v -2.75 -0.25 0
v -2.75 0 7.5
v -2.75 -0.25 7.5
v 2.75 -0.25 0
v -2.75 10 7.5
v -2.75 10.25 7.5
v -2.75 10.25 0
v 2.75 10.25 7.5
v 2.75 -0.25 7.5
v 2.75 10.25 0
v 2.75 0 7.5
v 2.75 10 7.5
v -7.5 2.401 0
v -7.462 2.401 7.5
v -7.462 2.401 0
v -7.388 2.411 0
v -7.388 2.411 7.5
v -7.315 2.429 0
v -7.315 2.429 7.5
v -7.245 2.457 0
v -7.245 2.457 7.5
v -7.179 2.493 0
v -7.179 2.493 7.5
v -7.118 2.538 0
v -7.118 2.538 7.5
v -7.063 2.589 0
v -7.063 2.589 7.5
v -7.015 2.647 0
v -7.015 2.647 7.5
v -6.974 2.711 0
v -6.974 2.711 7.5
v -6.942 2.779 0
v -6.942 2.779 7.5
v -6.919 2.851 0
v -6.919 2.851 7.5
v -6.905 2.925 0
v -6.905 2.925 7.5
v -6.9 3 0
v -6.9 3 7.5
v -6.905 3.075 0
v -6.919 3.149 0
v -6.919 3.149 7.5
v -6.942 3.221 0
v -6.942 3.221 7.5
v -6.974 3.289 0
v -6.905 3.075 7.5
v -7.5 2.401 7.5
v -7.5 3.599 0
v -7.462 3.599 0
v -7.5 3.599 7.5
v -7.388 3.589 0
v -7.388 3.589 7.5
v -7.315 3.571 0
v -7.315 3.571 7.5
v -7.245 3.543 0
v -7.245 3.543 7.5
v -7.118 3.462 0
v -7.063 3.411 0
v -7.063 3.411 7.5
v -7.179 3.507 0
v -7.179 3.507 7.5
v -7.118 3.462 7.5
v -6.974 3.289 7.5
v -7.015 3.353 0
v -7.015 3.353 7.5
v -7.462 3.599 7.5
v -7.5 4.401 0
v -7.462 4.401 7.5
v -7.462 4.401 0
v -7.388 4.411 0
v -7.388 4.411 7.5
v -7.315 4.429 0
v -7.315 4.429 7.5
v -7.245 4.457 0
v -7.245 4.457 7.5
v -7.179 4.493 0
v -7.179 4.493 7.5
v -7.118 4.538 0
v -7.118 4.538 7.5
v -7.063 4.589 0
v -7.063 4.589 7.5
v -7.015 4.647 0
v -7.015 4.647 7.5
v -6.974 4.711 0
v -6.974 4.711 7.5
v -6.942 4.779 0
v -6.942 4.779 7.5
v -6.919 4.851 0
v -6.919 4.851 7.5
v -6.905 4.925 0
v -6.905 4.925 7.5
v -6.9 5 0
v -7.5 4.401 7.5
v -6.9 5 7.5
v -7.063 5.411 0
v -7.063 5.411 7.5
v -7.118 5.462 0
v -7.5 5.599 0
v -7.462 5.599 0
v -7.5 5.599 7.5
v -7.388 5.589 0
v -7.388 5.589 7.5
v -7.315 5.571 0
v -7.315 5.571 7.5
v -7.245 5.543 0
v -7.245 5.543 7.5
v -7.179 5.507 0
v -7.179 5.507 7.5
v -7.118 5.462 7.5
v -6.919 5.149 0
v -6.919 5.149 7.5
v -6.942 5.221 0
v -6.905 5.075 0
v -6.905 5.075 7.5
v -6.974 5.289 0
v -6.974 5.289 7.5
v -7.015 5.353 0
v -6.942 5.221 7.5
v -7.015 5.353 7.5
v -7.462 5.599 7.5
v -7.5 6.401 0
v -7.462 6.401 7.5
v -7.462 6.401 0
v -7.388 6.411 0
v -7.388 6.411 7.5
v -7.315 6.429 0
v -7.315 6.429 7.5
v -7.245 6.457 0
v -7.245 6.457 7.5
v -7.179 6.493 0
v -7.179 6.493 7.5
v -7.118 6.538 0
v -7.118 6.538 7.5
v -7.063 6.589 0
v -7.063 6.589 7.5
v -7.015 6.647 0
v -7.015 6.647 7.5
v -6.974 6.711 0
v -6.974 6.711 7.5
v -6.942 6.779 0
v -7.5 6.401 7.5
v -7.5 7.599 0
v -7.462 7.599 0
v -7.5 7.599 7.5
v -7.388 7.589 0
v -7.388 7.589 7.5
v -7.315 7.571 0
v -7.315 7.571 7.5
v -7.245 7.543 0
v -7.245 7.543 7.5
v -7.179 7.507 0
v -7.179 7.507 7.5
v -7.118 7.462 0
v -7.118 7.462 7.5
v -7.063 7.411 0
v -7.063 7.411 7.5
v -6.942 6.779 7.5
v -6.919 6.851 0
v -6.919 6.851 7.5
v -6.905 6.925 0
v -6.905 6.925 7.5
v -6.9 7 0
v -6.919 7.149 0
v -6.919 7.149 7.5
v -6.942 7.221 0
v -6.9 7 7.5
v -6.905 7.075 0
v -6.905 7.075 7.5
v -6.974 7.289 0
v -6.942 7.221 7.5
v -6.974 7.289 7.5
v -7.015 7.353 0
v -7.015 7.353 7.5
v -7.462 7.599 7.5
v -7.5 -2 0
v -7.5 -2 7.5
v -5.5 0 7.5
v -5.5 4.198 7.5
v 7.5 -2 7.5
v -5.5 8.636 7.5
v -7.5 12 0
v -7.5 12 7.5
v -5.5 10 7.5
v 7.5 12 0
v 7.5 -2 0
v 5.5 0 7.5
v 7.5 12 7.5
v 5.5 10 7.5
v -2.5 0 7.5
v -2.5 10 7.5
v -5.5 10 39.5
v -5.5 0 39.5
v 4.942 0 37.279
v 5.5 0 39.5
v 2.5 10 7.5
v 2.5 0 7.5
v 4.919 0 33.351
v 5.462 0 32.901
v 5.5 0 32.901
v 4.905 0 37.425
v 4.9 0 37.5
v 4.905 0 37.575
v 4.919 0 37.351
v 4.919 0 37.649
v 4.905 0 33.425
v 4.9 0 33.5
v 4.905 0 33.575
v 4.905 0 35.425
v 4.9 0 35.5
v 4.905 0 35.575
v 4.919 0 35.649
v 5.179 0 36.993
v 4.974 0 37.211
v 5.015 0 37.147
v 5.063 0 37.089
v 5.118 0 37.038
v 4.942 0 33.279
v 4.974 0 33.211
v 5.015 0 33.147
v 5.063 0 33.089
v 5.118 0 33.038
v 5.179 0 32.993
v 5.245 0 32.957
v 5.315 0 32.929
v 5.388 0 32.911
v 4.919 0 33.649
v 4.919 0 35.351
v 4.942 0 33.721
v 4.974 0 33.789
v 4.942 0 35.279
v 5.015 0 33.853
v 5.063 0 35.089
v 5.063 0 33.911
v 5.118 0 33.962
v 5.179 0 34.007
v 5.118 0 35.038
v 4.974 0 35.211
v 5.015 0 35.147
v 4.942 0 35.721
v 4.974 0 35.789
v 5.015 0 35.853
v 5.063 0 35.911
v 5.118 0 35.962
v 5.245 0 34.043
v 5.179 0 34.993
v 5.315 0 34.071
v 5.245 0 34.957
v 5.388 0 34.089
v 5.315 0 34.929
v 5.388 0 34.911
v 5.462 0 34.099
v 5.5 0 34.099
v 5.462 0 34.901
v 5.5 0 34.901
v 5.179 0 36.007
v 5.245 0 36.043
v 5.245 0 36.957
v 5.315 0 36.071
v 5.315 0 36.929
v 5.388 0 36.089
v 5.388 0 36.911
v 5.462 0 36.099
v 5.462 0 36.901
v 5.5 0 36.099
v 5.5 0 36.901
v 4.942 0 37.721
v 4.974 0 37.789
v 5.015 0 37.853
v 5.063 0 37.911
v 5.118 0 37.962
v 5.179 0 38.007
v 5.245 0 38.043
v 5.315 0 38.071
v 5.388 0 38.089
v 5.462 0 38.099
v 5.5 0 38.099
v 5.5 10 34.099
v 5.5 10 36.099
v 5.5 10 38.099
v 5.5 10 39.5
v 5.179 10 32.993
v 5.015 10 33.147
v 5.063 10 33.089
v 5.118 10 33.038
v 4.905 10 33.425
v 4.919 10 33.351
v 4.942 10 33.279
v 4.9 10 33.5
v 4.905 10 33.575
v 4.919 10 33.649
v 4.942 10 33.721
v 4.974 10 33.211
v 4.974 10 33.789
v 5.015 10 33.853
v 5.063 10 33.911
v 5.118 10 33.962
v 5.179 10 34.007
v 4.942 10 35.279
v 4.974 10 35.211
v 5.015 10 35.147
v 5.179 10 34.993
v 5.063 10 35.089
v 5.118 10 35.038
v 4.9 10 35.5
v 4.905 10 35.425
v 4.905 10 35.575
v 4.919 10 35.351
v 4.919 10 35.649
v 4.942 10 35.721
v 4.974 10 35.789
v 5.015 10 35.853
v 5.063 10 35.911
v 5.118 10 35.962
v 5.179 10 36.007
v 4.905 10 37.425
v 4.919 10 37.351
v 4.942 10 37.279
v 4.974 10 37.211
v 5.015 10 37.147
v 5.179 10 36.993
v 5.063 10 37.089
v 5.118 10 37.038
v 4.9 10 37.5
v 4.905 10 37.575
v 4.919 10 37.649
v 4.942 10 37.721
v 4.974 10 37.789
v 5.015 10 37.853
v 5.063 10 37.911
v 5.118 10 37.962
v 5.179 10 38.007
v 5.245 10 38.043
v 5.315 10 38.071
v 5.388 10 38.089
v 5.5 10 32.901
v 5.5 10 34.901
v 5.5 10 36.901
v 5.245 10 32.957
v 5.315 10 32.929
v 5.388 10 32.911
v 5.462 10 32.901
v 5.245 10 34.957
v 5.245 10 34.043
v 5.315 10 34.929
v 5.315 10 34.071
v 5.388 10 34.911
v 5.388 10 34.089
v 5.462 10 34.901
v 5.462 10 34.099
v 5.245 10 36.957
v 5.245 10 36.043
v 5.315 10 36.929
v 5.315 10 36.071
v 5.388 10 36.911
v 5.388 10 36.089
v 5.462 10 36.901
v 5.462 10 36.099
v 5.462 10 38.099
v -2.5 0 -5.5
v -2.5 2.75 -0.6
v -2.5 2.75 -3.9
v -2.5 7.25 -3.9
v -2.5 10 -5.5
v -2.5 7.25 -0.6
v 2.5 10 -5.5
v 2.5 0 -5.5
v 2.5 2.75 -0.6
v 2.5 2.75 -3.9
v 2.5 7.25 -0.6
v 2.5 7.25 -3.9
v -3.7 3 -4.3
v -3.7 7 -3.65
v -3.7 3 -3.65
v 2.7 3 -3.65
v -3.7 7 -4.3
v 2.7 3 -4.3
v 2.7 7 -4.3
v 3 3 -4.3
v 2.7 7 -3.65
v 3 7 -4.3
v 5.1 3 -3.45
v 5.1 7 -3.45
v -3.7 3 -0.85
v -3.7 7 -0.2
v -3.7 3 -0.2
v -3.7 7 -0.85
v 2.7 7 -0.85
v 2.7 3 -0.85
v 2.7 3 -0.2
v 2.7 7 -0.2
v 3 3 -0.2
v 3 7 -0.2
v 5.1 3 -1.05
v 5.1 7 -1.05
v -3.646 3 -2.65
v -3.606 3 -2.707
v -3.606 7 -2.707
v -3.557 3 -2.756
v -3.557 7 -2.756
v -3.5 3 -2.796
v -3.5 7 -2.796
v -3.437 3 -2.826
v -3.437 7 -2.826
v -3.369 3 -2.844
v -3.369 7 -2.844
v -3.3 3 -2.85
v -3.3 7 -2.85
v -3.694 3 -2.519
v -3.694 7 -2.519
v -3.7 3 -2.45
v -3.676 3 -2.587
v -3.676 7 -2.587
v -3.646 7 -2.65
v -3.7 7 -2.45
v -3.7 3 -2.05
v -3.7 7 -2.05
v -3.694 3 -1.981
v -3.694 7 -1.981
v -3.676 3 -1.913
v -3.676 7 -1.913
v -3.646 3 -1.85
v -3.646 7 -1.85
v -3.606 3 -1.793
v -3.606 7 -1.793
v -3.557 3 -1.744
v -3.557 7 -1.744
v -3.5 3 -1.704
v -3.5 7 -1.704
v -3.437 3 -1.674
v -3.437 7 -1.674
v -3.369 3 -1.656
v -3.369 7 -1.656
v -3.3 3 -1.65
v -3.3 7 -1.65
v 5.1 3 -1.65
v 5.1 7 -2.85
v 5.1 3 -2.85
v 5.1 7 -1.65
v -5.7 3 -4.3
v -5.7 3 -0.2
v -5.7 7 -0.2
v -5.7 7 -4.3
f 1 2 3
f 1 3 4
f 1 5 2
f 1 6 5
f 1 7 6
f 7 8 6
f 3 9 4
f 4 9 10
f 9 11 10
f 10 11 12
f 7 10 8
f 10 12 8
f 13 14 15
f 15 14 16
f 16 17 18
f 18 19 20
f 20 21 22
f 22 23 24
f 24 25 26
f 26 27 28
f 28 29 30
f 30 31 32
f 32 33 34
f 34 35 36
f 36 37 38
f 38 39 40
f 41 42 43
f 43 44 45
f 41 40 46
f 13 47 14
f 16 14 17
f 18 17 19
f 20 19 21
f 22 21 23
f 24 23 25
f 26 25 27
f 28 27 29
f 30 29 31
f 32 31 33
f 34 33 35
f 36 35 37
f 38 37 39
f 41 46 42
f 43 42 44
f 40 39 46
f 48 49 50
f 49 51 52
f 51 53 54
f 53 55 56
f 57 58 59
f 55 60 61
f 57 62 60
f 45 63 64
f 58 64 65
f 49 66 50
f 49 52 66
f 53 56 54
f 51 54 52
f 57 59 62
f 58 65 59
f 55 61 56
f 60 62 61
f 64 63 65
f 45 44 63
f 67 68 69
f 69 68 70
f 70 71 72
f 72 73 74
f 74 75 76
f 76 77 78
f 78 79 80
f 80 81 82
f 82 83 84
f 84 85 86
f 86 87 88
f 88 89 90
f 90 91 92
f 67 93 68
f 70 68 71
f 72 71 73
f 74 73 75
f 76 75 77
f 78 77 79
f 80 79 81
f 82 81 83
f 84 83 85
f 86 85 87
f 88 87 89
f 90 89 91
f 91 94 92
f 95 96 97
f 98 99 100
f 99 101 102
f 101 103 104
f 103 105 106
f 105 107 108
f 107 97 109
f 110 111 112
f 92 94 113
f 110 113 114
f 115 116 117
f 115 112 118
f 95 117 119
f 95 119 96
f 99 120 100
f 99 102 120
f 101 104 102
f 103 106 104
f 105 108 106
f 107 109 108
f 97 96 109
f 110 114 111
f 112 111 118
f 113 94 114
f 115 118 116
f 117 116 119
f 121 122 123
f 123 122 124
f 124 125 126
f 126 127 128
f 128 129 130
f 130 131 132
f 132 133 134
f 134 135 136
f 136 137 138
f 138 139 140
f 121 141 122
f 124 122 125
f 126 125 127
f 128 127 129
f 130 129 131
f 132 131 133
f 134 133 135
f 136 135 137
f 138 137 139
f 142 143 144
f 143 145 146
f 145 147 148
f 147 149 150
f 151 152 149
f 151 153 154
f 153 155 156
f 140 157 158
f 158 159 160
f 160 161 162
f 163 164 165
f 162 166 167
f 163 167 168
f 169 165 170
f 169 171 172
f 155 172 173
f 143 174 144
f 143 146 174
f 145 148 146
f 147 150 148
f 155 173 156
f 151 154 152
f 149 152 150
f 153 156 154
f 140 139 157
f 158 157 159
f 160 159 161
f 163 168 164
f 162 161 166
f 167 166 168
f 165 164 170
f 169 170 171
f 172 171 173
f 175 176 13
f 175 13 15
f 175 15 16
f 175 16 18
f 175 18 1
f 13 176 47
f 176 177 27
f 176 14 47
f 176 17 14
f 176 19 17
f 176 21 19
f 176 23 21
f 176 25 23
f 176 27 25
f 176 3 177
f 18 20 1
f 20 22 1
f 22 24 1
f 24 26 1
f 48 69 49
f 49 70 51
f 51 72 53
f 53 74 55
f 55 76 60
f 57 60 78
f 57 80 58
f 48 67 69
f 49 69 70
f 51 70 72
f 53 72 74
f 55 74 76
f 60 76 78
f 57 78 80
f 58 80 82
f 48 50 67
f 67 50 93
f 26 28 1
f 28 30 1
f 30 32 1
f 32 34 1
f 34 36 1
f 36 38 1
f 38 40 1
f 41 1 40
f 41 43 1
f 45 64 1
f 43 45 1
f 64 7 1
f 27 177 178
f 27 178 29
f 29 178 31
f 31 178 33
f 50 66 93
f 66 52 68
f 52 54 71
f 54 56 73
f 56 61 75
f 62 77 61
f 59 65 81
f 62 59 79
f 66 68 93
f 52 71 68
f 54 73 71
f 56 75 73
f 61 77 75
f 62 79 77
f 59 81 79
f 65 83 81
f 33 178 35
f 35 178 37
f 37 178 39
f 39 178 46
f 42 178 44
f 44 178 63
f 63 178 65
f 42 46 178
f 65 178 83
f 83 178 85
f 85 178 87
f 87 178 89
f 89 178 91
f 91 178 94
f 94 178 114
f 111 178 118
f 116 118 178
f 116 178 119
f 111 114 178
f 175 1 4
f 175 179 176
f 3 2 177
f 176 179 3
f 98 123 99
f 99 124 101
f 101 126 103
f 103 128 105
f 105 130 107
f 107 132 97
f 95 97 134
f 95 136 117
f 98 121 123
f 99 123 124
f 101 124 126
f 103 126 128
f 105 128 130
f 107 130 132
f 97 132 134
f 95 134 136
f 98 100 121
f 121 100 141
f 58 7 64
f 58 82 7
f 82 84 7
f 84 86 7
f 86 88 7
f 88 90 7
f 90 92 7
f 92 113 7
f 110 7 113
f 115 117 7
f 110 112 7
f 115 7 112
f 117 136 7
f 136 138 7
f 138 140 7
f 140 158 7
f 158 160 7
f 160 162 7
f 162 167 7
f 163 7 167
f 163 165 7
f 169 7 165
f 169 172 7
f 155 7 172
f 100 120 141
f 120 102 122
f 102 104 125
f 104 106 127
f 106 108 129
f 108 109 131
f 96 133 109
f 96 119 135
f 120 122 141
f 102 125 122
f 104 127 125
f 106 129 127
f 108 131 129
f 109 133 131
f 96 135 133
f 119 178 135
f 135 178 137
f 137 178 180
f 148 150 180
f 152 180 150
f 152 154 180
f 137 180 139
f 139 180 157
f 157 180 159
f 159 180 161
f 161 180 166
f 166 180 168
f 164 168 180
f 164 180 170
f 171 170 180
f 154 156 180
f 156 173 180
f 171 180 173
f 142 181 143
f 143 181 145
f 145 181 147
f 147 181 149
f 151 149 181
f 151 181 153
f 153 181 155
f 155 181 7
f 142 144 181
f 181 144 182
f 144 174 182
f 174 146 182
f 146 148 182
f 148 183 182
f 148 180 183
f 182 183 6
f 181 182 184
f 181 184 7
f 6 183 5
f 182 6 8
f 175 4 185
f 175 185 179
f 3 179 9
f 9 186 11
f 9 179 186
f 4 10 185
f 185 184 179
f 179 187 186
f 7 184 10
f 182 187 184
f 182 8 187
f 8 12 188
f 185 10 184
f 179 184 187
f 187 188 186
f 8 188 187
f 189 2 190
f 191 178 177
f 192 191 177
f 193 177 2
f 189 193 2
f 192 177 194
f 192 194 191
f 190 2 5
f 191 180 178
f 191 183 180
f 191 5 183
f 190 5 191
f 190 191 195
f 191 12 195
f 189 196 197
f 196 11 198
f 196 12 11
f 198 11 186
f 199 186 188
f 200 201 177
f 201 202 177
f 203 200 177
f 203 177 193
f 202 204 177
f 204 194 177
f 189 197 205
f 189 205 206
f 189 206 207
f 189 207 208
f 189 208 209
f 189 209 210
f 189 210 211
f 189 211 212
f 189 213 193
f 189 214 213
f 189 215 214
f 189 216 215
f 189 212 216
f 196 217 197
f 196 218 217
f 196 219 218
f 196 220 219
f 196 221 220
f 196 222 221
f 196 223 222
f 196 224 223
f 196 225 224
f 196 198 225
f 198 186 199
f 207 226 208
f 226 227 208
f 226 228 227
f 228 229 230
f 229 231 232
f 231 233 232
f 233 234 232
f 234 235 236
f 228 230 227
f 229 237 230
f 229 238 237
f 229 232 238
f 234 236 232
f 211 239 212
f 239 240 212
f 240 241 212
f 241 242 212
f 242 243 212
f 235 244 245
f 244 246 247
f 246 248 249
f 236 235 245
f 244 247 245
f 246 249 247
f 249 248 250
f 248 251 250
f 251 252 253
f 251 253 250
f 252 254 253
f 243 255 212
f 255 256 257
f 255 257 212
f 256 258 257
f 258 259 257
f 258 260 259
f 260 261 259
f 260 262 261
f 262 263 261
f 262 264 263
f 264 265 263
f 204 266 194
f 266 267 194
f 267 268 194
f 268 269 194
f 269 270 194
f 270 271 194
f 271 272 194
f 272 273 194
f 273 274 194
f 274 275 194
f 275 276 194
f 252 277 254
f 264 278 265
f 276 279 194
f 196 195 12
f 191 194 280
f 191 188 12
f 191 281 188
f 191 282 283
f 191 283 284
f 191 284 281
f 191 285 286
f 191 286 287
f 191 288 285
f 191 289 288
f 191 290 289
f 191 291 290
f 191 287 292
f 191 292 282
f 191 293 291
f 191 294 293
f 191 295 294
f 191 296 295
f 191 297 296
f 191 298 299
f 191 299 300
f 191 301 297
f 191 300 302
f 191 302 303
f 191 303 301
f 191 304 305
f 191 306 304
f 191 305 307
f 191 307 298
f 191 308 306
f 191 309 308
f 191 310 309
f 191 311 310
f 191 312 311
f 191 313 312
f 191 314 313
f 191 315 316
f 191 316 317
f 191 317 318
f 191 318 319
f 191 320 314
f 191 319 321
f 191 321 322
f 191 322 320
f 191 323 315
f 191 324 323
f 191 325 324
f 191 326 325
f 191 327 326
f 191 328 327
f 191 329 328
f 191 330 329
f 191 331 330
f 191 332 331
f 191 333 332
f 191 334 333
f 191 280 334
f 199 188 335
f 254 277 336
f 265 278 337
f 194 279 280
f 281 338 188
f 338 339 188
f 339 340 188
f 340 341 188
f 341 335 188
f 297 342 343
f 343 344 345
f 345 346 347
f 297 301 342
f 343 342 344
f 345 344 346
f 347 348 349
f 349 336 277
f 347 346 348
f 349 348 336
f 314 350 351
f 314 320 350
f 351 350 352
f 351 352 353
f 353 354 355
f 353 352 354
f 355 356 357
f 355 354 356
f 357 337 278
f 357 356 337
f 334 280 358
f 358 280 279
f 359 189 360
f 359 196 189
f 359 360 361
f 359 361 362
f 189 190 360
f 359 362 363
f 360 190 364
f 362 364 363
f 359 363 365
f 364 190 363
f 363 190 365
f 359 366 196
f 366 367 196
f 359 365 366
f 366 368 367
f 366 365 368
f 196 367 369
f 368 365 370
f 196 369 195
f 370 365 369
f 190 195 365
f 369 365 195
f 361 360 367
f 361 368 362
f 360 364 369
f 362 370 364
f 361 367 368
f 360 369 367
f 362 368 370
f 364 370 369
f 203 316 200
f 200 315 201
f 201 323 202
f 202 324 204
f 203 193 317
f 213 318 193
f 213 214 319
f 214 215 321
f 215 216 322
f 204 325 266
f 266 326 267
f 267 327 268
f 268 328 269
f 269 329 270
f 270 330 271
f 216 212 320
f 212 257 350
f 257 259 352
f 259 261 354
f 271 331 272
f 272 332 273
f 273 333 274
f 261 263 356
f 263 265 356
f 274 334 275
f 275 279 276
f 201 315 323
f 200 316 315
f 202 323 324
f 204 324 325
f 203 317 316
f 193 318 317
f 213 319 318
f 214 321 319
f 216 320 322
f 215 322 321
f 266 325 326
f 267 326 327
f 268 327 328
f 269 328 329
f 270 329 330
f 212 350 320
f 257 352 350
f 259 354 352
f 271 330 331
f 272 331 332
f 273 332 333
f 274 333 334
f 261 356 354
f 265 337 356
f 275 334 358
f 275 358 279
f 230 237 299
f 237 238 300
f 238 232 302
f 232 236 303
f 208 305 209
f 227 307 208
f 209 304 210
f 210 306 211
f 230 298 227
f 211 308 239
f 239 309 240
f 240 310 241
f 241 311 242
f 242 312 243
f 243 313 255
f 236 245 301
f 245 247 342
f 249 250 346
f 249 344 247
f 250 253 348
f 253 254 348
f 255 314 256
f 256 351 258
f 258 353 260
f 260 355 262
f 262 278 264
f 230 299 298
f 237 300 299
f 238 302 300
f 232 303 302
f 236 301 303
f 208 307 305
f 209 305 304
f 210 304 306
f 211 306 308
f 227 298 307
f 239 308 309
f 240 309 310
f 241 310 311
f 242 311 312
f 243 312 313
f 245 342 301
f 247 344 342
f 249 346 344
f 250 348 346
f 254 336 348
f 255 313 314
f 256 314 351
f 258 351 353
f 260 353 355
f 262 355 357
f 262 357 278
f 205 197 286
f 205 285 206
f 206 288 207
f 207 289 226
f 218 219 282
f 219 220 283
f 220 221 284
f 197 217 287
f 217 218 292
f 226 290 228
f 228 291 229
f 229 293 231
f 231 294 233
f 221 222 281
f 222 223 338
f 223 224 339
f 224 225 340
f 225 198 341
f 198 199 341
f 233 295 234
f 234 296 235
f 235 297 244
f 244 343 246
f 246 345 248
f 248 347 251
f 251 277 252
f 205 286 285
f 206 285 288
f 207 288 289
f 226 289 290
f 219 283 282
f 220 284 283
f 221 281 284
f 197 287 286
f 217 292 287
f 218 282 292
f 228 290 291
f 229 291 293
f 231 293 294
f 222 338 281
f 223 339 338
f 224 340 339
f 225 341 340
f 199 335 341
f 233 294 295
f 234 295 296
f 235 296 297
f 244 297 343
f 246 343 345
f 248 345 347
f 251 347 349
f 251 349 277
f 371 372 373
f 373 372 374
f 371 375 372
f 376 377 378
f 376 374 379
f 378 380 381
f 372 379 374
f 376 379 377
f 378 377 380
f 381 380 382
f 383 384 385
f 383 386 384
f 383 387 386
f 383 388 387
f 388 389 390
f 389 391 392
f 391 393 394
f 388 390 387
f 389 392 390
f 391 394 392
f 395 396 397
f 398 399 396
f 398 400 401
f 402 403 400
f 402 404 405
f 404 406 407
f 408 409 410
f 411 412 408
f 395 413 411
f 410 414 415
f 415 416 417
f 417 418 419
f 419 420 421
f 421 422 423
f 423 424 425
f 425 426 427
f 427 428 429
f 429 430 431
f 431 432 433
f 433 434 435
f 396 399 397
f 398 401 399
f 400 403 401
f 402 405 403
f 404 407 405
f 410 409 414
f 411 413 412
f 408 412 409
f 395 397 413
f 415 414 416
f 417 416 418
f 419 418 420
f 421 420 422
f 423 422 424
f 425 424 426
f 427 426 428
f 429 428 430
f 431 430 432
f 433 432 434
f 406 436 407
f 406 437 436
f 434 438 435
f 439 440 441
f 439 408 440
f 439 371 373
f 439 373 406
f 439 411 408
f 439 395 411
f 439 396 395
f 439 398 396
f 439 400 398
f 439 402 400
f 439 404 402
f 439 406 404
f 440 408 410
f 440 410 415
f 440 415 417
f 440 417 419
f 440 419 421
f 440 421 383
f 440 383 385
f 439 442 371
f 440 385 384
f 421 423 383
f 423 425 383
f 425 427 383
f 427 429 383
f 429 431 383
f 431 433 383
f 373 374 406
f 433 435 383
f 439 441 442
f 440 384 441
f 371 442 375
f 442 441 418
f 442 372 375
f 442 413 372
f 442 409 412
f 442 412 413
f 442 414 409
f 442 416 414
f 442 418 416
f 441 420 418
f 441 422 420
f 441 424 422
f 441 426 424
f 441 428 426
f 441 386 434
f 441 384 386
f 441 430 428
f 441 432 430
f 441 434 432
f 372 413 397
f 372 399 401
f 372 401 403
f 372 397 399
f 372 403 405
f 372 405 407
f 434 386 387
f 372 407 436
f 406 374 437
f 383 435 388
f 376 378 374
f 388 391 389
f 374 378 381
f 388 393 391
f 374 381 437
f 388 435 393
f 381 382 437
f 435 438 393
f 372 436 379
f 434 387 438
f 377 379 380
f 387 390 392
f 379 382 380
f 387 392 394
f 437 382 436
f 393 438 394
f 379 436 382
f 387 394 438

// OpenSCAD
$fn = 50;

difference() {
	union() {
		translate(v = [0, 0, 0]) {
			rotate(a = [0, 0, 0]) {
				difference() {
					union() {
						translate(v = [-7.5, -2.0, 0]) {
							cube(size = [15.0, 14.0, 7.5]);
						}
					}
					union() {
						translate(v = [-2.75, -0.25, -0.1]) {
							cube(size = [5.5, 10.5, 7.7]);
						}
						translate(v = [-7.5, 3, -0.1]) {
							cylinder(h = 7.7, r = 0.6);
						}
						translate(v = [-7.5, 5, -0.1]) {
							cylinder(h = 7.7, r = 0.6);
						}
						translate(v = [-7.5, 7, -0.1]) {
							cylinder(h = 7.7, r = 0.6);
						}
					}
				}
			}
		}
		translate(v = [0, 0, 7.5]) {
			rotate(a = [0, 0, 0]) {
				difference() {
					union() {
						translate(v = [-5.5, 0, 0]) {
							cube(size = [11.0, 10.0, 32.0]);
						}
						translate(v = [-2.5, 0, -13.0]) {
							cube(size = [5.0, 10.0, 13.1]);
						}
					}
					union() {
						translate(v = [-2.6, 2.75, -11.4]) {
							cube(size = [5.2, 4.5, 3.3]);
						}
						translate(v = [5.5, 10.1, 30.0]) {
							rotate(a = [90, 0, 0]) {
								cylinder(h = 10.2, r = 0.6);
							}
						}
						translate(v = [5.5, 10.1, 28.0]) {
							rotate(a = [90, 0, 0]) {
								cylinder(h = 10.2, r = 0.6);
							}
						}
						translate(v = [5.5, 10.1, 26.0]) {
							rotate(a = [90, 0, 0]) {
								cylinder(h = 10.2, r = 0.6);
							}
						}
					}
				}
			}
		}
		translate(v = [0, 3.0, -2.25]) {
			rotate(a = [0, 0, 0]) {
				difference() {
					union() {
						translate(v = [-5.7, 0, -2.05]) {
							cube(size = [10.8, 4.0, 4.1]);
						}
					}
					union() {
						translate(v = [0, 4.1, 0]) {
							rotate(a = [90, 0, 0]) {
								linear_extrude(height = 4.2) {
									polygon(points = [[-3.7, -1.4], [2.7, -1.4], [2.7, -2.05], [3.0, -2.05], [5.1, -1.2], [5.2, -1.2], [5.2, -2.15], [-3.7, -2.15]]);
								}
							}
						}
						translate(v = [0, 4.1, 0]) {
							rotate(a = [90, 0, 0]) {
								linear_extrude(height = 4.2) {
									polygon(points = [[-3.7, 1.4], [2.7, 1.4], [2.7, 2.05], [3.0, 2.05], [5.1, 1.2], [5.2, 1.2], [5.2, 2.15], [-3.7, 2.15]]);
								}
							}
						}
						translate(v = [0, 4.1, 0]) {
							rotate(a = [90, 0, 0]) {
								linear_extrude(height = 4.2) {
									polygon(points = [[-3.7, 0.2], [-3.693923, 0.269459], [-3.675877, 0.336808], [-3.64641, 0.4], [-3.606418, 0.457115], [-3.557115, 0.506418], [-3.5, 0.54641], [-3.436808, 0.575877], [-3.369459, 0.593923], [-3.3, 0.6], [5.2, 0.6], [5.2, -0.6], [-3.3, -0.6], [-3.369459, -0.593923], [-3.436808, -0.575877], [-3.5, -0.54641], [-3.557115, -0.506418], [-3.606418, -0.457115], [-3.64641, -0.4], [-3.675877, -0.336808], [-3.693923, -0.269459], [-3.7, -0.2]]);
								}
							}
						}
					}
				}
			}
		}
	}
	union();
}
